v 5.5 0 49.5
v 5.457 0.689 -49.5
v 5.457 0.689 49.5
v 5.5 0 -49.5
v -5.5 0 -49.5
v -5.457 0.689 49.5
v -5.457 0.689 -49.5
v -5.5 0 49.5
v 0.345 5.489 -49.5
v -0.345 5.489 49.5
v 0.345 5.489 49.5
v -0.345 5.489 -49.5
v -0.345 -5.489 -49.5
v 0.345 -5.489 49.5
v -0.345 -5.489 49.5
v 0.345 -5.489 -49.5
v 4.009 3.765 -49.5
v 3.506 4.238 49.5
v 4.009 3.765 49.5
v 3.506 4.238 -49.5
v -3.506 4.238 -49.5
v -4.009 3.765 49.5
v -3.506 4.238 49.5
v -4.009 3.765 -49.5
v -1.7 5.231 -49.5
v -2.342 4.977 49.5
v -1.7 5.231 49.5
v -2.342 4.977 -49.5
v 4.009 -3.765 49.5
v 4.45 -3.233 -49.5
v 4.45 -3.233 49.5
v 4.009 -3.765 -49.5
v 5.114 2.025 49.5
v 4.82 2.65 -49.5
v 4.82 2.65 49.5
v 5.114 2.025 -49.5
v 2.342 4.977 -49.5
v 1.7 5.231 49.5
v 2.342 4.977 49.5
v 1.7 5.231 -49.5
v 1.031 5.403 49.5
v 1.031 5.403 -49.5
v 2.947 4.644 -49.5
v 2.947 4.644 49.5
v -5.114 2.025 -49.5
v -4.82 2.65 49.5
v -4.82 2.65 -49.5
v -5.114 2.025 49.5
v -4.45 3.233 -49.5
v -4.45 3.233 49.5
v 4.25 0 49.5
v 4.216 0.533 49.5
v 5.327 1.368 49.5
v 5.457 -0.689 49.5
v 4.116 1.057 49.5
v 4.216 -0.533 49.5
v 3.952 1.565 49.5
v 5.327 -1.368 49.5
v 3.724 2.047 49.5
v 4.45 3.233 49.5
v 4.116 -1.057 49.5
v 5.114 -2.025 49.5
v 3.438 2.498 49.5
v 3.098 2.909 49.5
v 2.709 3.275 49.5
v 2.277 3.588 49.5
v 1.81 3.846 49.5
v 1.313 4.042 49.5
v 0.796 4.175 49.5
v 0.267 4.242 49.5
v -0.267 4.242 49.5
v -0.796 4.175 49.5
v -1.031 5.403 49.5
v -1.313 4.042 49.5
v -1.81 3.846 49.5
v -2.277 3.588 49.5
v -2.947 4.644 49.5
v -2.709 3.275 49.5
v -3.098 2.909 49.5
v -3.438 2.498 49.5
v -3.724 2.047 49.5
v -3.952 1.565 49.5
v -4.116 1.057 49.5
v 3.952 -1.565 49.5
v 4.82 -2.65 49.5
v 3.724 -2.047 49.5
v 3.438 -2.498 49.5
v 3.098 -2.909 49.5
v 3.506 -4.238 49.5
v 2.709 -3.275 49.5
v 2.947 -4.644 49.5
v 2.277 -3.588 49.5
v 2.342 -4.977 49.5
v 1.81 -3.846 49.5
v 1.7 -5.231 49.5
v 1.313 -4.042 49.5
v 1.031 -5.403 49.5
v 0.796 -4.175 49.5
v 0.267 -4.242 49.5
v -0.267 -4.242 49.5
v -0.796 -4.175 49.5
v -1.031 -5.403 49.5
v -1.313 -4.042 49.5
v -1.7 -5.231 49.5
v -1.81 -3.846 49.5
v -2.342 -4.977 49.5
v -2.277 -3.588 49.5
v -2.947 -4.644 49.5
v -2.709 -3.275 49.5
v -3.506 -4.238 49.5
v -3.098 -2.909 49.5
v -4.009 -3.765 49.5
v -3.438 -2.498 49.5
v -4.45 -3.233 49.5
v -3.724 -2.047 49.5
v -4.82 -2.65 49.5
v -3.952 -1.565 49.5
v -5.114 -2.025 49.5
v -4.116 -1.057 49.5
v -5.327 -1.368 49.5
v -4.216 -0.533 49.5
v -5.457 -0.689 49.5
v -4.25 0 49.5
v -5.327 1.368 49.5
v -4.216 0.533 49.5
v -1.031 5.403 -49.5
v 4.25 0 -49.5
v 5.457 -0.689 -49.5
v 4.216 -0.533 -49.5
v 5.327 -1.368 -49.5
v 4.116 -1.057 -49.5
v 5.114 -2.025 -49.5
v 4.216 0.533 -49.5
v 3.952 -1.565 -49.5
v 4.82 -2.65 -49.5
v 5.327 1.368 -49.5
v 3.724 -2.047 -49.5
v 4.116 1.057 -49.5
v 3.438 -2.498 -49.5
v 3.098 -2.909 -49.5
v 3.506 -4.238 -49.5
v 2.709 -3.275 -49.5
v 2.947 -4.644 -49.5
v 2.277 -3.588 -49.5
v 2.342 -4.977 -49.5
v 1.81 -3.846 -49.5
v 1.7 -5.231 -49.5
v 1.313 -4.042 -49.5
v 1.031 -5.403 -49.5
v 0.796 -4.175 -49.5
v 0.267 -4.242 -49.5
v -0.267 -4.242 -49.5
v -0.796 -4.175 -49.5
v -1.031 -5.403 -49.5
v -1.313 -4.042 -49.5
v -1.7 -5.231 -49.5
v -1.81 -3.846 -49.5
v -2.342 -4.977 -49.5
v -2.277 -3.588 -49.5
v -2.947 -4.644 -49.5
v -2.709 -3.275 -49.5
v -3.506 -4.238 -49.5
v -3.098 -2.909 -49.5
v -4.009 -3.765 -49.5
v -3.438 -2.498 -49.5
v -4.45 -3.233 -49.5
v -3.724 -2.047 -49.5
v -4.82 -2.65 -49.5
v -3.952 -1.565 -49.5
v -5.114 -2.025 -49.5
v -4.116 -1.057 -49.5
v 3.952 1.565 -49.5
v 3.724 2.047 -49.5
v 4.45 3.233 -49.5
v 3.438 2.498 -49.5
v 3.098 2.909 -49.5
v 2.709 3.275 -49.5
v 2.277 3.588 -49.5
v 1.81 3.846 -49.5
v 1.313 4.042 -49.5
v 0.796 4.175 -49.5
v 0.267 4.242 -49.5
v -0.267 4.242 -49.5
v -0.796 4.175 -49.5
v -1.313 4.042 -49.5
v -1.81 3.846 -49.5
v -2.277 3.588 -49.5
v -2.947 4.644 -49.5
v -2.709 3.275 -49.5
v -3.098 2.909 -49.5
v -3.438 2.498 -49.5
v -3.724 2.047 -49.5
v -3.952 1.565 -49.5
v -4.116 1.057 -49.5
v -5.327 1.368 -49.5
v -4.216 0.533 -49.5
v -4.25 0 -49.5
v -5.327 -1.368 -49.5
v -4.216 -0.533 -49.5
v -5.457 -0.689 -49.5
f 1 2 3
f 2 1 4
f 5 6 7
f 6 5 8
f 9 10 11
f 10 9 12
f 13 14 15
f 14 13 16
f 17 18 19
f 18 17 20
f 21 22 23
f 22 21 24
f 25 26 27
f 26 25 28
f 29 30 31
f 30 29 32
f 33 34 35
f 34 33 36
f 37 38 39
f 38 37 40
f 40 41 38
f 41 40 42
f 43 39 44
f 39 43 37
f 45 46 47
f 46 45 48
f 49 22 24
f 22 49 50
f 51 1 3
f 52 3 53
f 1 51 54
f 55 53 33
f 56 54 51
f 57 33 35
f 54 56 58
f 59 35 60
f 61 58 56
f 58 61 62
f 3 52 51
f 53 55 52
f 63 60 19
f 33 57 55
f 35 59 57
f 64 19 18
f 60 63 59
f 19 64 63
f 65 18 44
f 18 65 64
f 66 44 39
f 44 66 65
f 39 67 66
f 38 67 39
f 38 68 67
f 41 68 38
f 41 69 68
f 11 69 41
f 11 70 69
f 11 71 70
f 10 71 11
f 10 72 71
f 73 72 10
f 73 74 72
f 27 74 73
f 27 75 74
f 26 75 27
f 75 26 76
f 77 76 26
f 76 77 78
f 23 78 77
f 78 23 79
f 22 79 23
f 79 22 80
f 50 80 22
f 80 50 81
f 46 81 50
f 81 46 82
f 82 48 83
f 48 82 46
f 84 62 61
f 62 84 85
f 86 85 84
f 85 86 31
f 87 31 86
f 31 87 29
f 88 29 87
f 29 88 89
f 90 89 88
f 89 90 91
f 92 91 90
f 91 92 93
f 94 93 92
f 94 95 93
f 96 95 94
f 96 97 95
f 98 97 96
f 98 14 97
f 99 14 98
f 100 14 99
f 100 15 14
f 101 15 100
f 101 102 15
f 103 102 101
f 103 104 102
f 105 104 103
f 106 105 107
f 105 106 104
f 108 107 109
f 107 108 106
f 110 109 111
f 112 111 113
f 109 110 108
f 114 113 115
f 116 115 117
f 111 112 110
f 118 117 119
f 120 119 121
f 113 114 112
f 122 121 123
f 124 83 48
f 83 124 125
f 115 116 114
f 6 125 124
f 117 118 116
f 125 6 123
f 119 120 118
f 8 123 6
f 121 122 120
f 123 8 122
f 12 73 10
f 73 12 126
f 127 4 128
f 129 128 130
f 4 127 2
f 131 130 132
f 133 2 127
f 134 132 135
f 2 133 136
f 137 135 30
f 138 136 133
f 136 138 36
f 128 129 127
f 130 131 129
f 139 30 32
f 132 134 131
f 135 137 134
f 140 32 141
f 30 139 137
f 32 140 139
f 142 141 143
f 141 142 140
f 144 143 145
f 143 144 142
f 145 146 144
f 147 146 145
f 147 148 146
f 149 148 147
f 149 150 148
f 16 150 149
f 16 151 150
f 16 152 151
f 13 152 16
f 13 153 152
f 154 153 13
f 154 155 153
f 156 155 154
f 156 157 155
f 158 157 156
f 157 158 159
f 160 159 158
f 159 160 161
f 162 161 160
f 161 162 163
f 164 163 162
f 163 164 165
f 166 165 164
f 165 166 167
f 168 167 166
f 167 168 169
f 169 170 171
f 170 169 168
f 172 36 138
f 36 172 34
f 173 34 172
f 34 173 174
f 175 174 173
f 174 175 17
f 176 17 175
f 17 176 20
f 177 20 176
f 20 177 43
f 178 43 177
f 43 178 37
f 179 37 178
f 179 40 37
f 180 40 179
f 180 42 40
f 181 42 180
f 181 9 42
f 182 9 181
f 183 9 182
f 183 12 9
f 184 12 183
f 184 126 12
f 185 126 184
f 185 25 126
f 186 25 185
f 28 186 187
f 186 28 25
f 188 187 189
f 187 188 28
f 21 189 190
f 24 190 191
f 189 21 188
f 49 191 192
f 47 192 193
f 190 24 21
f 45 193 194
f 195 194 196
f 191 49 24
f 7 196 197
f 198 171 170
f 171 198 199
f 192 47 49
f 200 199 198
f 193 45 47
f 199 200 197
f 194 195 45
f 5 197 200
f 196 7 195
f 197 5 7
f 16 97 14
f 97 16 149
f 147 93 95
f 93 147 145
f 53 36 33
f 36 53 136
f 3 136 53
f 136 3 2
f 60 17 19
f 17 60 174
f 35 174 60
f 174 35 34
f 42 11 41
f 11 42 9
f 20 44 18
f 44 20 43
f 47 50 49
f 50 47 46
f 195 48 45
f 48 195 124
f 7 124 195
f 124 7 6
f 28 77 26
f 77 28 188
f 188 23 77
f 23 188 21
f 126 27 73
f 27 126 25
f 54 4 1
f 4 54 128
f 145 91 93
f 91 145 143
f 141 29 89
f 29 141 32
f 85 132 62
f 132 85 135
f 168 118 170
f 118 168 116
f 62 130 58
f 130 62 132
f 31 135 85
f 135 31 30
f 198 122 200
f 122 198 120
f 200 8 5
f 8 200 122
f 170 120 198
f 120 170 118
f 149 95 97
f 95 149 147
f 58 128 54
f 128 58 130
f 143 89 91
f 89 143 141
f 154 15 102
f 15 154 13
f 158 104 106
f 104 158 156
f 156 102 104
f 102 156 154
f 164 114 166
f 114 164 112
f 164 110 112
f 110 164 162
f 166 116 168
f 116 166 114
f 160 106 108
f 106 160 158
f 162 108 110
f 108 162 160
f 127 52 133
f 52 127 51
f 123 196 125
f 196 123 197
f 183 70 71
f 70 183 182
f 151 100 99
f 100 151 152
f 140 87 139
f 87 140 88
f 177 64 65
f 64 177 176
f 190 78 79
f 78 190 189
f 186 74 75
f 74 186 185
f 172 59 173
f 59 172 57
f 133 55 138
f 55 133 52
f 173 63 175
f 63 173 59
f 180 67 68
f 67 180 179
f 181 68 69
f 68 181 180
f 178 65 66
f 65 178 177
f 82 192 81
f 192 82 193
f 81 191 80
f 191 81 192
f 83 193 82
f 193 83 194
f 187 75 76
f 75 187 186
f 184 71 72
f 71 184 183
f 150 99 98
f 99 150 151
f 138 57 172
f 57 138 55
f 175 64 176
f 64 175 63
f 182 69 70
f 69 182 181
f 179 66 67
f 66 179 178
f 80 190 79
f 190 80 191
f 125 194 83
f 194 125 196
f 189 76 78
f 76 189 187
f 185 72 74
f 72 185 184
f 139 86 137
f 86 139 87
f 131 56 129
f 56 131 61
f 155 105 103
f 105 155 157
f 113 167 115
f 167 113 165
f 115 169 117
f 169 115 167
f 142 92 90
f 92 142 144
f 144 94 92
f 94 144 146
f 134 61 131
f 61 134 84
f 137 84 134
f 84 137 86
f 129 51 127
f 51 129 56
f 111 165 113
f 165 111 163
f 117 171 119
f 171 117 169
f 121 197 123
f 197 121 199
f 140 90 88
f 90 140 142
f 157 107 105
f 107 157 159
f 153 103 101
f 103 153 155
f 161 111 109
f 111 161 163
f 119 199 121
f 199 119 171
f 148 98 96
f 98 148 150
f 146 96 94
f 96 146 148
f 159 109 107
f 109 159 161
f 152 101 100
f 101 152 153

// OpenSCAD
$fn = 50;


difference() {
	union() {
		translate(v = [0, 0, -49.5000000000]) {
			cylinder(h = 99, r = 5.5000000000);
		}
	}
	union() {
		translate(v = [0, 0, -100.0000000000]) {
			cylinder(h = 200, r = 4.2500000000);
		}
	}
}
